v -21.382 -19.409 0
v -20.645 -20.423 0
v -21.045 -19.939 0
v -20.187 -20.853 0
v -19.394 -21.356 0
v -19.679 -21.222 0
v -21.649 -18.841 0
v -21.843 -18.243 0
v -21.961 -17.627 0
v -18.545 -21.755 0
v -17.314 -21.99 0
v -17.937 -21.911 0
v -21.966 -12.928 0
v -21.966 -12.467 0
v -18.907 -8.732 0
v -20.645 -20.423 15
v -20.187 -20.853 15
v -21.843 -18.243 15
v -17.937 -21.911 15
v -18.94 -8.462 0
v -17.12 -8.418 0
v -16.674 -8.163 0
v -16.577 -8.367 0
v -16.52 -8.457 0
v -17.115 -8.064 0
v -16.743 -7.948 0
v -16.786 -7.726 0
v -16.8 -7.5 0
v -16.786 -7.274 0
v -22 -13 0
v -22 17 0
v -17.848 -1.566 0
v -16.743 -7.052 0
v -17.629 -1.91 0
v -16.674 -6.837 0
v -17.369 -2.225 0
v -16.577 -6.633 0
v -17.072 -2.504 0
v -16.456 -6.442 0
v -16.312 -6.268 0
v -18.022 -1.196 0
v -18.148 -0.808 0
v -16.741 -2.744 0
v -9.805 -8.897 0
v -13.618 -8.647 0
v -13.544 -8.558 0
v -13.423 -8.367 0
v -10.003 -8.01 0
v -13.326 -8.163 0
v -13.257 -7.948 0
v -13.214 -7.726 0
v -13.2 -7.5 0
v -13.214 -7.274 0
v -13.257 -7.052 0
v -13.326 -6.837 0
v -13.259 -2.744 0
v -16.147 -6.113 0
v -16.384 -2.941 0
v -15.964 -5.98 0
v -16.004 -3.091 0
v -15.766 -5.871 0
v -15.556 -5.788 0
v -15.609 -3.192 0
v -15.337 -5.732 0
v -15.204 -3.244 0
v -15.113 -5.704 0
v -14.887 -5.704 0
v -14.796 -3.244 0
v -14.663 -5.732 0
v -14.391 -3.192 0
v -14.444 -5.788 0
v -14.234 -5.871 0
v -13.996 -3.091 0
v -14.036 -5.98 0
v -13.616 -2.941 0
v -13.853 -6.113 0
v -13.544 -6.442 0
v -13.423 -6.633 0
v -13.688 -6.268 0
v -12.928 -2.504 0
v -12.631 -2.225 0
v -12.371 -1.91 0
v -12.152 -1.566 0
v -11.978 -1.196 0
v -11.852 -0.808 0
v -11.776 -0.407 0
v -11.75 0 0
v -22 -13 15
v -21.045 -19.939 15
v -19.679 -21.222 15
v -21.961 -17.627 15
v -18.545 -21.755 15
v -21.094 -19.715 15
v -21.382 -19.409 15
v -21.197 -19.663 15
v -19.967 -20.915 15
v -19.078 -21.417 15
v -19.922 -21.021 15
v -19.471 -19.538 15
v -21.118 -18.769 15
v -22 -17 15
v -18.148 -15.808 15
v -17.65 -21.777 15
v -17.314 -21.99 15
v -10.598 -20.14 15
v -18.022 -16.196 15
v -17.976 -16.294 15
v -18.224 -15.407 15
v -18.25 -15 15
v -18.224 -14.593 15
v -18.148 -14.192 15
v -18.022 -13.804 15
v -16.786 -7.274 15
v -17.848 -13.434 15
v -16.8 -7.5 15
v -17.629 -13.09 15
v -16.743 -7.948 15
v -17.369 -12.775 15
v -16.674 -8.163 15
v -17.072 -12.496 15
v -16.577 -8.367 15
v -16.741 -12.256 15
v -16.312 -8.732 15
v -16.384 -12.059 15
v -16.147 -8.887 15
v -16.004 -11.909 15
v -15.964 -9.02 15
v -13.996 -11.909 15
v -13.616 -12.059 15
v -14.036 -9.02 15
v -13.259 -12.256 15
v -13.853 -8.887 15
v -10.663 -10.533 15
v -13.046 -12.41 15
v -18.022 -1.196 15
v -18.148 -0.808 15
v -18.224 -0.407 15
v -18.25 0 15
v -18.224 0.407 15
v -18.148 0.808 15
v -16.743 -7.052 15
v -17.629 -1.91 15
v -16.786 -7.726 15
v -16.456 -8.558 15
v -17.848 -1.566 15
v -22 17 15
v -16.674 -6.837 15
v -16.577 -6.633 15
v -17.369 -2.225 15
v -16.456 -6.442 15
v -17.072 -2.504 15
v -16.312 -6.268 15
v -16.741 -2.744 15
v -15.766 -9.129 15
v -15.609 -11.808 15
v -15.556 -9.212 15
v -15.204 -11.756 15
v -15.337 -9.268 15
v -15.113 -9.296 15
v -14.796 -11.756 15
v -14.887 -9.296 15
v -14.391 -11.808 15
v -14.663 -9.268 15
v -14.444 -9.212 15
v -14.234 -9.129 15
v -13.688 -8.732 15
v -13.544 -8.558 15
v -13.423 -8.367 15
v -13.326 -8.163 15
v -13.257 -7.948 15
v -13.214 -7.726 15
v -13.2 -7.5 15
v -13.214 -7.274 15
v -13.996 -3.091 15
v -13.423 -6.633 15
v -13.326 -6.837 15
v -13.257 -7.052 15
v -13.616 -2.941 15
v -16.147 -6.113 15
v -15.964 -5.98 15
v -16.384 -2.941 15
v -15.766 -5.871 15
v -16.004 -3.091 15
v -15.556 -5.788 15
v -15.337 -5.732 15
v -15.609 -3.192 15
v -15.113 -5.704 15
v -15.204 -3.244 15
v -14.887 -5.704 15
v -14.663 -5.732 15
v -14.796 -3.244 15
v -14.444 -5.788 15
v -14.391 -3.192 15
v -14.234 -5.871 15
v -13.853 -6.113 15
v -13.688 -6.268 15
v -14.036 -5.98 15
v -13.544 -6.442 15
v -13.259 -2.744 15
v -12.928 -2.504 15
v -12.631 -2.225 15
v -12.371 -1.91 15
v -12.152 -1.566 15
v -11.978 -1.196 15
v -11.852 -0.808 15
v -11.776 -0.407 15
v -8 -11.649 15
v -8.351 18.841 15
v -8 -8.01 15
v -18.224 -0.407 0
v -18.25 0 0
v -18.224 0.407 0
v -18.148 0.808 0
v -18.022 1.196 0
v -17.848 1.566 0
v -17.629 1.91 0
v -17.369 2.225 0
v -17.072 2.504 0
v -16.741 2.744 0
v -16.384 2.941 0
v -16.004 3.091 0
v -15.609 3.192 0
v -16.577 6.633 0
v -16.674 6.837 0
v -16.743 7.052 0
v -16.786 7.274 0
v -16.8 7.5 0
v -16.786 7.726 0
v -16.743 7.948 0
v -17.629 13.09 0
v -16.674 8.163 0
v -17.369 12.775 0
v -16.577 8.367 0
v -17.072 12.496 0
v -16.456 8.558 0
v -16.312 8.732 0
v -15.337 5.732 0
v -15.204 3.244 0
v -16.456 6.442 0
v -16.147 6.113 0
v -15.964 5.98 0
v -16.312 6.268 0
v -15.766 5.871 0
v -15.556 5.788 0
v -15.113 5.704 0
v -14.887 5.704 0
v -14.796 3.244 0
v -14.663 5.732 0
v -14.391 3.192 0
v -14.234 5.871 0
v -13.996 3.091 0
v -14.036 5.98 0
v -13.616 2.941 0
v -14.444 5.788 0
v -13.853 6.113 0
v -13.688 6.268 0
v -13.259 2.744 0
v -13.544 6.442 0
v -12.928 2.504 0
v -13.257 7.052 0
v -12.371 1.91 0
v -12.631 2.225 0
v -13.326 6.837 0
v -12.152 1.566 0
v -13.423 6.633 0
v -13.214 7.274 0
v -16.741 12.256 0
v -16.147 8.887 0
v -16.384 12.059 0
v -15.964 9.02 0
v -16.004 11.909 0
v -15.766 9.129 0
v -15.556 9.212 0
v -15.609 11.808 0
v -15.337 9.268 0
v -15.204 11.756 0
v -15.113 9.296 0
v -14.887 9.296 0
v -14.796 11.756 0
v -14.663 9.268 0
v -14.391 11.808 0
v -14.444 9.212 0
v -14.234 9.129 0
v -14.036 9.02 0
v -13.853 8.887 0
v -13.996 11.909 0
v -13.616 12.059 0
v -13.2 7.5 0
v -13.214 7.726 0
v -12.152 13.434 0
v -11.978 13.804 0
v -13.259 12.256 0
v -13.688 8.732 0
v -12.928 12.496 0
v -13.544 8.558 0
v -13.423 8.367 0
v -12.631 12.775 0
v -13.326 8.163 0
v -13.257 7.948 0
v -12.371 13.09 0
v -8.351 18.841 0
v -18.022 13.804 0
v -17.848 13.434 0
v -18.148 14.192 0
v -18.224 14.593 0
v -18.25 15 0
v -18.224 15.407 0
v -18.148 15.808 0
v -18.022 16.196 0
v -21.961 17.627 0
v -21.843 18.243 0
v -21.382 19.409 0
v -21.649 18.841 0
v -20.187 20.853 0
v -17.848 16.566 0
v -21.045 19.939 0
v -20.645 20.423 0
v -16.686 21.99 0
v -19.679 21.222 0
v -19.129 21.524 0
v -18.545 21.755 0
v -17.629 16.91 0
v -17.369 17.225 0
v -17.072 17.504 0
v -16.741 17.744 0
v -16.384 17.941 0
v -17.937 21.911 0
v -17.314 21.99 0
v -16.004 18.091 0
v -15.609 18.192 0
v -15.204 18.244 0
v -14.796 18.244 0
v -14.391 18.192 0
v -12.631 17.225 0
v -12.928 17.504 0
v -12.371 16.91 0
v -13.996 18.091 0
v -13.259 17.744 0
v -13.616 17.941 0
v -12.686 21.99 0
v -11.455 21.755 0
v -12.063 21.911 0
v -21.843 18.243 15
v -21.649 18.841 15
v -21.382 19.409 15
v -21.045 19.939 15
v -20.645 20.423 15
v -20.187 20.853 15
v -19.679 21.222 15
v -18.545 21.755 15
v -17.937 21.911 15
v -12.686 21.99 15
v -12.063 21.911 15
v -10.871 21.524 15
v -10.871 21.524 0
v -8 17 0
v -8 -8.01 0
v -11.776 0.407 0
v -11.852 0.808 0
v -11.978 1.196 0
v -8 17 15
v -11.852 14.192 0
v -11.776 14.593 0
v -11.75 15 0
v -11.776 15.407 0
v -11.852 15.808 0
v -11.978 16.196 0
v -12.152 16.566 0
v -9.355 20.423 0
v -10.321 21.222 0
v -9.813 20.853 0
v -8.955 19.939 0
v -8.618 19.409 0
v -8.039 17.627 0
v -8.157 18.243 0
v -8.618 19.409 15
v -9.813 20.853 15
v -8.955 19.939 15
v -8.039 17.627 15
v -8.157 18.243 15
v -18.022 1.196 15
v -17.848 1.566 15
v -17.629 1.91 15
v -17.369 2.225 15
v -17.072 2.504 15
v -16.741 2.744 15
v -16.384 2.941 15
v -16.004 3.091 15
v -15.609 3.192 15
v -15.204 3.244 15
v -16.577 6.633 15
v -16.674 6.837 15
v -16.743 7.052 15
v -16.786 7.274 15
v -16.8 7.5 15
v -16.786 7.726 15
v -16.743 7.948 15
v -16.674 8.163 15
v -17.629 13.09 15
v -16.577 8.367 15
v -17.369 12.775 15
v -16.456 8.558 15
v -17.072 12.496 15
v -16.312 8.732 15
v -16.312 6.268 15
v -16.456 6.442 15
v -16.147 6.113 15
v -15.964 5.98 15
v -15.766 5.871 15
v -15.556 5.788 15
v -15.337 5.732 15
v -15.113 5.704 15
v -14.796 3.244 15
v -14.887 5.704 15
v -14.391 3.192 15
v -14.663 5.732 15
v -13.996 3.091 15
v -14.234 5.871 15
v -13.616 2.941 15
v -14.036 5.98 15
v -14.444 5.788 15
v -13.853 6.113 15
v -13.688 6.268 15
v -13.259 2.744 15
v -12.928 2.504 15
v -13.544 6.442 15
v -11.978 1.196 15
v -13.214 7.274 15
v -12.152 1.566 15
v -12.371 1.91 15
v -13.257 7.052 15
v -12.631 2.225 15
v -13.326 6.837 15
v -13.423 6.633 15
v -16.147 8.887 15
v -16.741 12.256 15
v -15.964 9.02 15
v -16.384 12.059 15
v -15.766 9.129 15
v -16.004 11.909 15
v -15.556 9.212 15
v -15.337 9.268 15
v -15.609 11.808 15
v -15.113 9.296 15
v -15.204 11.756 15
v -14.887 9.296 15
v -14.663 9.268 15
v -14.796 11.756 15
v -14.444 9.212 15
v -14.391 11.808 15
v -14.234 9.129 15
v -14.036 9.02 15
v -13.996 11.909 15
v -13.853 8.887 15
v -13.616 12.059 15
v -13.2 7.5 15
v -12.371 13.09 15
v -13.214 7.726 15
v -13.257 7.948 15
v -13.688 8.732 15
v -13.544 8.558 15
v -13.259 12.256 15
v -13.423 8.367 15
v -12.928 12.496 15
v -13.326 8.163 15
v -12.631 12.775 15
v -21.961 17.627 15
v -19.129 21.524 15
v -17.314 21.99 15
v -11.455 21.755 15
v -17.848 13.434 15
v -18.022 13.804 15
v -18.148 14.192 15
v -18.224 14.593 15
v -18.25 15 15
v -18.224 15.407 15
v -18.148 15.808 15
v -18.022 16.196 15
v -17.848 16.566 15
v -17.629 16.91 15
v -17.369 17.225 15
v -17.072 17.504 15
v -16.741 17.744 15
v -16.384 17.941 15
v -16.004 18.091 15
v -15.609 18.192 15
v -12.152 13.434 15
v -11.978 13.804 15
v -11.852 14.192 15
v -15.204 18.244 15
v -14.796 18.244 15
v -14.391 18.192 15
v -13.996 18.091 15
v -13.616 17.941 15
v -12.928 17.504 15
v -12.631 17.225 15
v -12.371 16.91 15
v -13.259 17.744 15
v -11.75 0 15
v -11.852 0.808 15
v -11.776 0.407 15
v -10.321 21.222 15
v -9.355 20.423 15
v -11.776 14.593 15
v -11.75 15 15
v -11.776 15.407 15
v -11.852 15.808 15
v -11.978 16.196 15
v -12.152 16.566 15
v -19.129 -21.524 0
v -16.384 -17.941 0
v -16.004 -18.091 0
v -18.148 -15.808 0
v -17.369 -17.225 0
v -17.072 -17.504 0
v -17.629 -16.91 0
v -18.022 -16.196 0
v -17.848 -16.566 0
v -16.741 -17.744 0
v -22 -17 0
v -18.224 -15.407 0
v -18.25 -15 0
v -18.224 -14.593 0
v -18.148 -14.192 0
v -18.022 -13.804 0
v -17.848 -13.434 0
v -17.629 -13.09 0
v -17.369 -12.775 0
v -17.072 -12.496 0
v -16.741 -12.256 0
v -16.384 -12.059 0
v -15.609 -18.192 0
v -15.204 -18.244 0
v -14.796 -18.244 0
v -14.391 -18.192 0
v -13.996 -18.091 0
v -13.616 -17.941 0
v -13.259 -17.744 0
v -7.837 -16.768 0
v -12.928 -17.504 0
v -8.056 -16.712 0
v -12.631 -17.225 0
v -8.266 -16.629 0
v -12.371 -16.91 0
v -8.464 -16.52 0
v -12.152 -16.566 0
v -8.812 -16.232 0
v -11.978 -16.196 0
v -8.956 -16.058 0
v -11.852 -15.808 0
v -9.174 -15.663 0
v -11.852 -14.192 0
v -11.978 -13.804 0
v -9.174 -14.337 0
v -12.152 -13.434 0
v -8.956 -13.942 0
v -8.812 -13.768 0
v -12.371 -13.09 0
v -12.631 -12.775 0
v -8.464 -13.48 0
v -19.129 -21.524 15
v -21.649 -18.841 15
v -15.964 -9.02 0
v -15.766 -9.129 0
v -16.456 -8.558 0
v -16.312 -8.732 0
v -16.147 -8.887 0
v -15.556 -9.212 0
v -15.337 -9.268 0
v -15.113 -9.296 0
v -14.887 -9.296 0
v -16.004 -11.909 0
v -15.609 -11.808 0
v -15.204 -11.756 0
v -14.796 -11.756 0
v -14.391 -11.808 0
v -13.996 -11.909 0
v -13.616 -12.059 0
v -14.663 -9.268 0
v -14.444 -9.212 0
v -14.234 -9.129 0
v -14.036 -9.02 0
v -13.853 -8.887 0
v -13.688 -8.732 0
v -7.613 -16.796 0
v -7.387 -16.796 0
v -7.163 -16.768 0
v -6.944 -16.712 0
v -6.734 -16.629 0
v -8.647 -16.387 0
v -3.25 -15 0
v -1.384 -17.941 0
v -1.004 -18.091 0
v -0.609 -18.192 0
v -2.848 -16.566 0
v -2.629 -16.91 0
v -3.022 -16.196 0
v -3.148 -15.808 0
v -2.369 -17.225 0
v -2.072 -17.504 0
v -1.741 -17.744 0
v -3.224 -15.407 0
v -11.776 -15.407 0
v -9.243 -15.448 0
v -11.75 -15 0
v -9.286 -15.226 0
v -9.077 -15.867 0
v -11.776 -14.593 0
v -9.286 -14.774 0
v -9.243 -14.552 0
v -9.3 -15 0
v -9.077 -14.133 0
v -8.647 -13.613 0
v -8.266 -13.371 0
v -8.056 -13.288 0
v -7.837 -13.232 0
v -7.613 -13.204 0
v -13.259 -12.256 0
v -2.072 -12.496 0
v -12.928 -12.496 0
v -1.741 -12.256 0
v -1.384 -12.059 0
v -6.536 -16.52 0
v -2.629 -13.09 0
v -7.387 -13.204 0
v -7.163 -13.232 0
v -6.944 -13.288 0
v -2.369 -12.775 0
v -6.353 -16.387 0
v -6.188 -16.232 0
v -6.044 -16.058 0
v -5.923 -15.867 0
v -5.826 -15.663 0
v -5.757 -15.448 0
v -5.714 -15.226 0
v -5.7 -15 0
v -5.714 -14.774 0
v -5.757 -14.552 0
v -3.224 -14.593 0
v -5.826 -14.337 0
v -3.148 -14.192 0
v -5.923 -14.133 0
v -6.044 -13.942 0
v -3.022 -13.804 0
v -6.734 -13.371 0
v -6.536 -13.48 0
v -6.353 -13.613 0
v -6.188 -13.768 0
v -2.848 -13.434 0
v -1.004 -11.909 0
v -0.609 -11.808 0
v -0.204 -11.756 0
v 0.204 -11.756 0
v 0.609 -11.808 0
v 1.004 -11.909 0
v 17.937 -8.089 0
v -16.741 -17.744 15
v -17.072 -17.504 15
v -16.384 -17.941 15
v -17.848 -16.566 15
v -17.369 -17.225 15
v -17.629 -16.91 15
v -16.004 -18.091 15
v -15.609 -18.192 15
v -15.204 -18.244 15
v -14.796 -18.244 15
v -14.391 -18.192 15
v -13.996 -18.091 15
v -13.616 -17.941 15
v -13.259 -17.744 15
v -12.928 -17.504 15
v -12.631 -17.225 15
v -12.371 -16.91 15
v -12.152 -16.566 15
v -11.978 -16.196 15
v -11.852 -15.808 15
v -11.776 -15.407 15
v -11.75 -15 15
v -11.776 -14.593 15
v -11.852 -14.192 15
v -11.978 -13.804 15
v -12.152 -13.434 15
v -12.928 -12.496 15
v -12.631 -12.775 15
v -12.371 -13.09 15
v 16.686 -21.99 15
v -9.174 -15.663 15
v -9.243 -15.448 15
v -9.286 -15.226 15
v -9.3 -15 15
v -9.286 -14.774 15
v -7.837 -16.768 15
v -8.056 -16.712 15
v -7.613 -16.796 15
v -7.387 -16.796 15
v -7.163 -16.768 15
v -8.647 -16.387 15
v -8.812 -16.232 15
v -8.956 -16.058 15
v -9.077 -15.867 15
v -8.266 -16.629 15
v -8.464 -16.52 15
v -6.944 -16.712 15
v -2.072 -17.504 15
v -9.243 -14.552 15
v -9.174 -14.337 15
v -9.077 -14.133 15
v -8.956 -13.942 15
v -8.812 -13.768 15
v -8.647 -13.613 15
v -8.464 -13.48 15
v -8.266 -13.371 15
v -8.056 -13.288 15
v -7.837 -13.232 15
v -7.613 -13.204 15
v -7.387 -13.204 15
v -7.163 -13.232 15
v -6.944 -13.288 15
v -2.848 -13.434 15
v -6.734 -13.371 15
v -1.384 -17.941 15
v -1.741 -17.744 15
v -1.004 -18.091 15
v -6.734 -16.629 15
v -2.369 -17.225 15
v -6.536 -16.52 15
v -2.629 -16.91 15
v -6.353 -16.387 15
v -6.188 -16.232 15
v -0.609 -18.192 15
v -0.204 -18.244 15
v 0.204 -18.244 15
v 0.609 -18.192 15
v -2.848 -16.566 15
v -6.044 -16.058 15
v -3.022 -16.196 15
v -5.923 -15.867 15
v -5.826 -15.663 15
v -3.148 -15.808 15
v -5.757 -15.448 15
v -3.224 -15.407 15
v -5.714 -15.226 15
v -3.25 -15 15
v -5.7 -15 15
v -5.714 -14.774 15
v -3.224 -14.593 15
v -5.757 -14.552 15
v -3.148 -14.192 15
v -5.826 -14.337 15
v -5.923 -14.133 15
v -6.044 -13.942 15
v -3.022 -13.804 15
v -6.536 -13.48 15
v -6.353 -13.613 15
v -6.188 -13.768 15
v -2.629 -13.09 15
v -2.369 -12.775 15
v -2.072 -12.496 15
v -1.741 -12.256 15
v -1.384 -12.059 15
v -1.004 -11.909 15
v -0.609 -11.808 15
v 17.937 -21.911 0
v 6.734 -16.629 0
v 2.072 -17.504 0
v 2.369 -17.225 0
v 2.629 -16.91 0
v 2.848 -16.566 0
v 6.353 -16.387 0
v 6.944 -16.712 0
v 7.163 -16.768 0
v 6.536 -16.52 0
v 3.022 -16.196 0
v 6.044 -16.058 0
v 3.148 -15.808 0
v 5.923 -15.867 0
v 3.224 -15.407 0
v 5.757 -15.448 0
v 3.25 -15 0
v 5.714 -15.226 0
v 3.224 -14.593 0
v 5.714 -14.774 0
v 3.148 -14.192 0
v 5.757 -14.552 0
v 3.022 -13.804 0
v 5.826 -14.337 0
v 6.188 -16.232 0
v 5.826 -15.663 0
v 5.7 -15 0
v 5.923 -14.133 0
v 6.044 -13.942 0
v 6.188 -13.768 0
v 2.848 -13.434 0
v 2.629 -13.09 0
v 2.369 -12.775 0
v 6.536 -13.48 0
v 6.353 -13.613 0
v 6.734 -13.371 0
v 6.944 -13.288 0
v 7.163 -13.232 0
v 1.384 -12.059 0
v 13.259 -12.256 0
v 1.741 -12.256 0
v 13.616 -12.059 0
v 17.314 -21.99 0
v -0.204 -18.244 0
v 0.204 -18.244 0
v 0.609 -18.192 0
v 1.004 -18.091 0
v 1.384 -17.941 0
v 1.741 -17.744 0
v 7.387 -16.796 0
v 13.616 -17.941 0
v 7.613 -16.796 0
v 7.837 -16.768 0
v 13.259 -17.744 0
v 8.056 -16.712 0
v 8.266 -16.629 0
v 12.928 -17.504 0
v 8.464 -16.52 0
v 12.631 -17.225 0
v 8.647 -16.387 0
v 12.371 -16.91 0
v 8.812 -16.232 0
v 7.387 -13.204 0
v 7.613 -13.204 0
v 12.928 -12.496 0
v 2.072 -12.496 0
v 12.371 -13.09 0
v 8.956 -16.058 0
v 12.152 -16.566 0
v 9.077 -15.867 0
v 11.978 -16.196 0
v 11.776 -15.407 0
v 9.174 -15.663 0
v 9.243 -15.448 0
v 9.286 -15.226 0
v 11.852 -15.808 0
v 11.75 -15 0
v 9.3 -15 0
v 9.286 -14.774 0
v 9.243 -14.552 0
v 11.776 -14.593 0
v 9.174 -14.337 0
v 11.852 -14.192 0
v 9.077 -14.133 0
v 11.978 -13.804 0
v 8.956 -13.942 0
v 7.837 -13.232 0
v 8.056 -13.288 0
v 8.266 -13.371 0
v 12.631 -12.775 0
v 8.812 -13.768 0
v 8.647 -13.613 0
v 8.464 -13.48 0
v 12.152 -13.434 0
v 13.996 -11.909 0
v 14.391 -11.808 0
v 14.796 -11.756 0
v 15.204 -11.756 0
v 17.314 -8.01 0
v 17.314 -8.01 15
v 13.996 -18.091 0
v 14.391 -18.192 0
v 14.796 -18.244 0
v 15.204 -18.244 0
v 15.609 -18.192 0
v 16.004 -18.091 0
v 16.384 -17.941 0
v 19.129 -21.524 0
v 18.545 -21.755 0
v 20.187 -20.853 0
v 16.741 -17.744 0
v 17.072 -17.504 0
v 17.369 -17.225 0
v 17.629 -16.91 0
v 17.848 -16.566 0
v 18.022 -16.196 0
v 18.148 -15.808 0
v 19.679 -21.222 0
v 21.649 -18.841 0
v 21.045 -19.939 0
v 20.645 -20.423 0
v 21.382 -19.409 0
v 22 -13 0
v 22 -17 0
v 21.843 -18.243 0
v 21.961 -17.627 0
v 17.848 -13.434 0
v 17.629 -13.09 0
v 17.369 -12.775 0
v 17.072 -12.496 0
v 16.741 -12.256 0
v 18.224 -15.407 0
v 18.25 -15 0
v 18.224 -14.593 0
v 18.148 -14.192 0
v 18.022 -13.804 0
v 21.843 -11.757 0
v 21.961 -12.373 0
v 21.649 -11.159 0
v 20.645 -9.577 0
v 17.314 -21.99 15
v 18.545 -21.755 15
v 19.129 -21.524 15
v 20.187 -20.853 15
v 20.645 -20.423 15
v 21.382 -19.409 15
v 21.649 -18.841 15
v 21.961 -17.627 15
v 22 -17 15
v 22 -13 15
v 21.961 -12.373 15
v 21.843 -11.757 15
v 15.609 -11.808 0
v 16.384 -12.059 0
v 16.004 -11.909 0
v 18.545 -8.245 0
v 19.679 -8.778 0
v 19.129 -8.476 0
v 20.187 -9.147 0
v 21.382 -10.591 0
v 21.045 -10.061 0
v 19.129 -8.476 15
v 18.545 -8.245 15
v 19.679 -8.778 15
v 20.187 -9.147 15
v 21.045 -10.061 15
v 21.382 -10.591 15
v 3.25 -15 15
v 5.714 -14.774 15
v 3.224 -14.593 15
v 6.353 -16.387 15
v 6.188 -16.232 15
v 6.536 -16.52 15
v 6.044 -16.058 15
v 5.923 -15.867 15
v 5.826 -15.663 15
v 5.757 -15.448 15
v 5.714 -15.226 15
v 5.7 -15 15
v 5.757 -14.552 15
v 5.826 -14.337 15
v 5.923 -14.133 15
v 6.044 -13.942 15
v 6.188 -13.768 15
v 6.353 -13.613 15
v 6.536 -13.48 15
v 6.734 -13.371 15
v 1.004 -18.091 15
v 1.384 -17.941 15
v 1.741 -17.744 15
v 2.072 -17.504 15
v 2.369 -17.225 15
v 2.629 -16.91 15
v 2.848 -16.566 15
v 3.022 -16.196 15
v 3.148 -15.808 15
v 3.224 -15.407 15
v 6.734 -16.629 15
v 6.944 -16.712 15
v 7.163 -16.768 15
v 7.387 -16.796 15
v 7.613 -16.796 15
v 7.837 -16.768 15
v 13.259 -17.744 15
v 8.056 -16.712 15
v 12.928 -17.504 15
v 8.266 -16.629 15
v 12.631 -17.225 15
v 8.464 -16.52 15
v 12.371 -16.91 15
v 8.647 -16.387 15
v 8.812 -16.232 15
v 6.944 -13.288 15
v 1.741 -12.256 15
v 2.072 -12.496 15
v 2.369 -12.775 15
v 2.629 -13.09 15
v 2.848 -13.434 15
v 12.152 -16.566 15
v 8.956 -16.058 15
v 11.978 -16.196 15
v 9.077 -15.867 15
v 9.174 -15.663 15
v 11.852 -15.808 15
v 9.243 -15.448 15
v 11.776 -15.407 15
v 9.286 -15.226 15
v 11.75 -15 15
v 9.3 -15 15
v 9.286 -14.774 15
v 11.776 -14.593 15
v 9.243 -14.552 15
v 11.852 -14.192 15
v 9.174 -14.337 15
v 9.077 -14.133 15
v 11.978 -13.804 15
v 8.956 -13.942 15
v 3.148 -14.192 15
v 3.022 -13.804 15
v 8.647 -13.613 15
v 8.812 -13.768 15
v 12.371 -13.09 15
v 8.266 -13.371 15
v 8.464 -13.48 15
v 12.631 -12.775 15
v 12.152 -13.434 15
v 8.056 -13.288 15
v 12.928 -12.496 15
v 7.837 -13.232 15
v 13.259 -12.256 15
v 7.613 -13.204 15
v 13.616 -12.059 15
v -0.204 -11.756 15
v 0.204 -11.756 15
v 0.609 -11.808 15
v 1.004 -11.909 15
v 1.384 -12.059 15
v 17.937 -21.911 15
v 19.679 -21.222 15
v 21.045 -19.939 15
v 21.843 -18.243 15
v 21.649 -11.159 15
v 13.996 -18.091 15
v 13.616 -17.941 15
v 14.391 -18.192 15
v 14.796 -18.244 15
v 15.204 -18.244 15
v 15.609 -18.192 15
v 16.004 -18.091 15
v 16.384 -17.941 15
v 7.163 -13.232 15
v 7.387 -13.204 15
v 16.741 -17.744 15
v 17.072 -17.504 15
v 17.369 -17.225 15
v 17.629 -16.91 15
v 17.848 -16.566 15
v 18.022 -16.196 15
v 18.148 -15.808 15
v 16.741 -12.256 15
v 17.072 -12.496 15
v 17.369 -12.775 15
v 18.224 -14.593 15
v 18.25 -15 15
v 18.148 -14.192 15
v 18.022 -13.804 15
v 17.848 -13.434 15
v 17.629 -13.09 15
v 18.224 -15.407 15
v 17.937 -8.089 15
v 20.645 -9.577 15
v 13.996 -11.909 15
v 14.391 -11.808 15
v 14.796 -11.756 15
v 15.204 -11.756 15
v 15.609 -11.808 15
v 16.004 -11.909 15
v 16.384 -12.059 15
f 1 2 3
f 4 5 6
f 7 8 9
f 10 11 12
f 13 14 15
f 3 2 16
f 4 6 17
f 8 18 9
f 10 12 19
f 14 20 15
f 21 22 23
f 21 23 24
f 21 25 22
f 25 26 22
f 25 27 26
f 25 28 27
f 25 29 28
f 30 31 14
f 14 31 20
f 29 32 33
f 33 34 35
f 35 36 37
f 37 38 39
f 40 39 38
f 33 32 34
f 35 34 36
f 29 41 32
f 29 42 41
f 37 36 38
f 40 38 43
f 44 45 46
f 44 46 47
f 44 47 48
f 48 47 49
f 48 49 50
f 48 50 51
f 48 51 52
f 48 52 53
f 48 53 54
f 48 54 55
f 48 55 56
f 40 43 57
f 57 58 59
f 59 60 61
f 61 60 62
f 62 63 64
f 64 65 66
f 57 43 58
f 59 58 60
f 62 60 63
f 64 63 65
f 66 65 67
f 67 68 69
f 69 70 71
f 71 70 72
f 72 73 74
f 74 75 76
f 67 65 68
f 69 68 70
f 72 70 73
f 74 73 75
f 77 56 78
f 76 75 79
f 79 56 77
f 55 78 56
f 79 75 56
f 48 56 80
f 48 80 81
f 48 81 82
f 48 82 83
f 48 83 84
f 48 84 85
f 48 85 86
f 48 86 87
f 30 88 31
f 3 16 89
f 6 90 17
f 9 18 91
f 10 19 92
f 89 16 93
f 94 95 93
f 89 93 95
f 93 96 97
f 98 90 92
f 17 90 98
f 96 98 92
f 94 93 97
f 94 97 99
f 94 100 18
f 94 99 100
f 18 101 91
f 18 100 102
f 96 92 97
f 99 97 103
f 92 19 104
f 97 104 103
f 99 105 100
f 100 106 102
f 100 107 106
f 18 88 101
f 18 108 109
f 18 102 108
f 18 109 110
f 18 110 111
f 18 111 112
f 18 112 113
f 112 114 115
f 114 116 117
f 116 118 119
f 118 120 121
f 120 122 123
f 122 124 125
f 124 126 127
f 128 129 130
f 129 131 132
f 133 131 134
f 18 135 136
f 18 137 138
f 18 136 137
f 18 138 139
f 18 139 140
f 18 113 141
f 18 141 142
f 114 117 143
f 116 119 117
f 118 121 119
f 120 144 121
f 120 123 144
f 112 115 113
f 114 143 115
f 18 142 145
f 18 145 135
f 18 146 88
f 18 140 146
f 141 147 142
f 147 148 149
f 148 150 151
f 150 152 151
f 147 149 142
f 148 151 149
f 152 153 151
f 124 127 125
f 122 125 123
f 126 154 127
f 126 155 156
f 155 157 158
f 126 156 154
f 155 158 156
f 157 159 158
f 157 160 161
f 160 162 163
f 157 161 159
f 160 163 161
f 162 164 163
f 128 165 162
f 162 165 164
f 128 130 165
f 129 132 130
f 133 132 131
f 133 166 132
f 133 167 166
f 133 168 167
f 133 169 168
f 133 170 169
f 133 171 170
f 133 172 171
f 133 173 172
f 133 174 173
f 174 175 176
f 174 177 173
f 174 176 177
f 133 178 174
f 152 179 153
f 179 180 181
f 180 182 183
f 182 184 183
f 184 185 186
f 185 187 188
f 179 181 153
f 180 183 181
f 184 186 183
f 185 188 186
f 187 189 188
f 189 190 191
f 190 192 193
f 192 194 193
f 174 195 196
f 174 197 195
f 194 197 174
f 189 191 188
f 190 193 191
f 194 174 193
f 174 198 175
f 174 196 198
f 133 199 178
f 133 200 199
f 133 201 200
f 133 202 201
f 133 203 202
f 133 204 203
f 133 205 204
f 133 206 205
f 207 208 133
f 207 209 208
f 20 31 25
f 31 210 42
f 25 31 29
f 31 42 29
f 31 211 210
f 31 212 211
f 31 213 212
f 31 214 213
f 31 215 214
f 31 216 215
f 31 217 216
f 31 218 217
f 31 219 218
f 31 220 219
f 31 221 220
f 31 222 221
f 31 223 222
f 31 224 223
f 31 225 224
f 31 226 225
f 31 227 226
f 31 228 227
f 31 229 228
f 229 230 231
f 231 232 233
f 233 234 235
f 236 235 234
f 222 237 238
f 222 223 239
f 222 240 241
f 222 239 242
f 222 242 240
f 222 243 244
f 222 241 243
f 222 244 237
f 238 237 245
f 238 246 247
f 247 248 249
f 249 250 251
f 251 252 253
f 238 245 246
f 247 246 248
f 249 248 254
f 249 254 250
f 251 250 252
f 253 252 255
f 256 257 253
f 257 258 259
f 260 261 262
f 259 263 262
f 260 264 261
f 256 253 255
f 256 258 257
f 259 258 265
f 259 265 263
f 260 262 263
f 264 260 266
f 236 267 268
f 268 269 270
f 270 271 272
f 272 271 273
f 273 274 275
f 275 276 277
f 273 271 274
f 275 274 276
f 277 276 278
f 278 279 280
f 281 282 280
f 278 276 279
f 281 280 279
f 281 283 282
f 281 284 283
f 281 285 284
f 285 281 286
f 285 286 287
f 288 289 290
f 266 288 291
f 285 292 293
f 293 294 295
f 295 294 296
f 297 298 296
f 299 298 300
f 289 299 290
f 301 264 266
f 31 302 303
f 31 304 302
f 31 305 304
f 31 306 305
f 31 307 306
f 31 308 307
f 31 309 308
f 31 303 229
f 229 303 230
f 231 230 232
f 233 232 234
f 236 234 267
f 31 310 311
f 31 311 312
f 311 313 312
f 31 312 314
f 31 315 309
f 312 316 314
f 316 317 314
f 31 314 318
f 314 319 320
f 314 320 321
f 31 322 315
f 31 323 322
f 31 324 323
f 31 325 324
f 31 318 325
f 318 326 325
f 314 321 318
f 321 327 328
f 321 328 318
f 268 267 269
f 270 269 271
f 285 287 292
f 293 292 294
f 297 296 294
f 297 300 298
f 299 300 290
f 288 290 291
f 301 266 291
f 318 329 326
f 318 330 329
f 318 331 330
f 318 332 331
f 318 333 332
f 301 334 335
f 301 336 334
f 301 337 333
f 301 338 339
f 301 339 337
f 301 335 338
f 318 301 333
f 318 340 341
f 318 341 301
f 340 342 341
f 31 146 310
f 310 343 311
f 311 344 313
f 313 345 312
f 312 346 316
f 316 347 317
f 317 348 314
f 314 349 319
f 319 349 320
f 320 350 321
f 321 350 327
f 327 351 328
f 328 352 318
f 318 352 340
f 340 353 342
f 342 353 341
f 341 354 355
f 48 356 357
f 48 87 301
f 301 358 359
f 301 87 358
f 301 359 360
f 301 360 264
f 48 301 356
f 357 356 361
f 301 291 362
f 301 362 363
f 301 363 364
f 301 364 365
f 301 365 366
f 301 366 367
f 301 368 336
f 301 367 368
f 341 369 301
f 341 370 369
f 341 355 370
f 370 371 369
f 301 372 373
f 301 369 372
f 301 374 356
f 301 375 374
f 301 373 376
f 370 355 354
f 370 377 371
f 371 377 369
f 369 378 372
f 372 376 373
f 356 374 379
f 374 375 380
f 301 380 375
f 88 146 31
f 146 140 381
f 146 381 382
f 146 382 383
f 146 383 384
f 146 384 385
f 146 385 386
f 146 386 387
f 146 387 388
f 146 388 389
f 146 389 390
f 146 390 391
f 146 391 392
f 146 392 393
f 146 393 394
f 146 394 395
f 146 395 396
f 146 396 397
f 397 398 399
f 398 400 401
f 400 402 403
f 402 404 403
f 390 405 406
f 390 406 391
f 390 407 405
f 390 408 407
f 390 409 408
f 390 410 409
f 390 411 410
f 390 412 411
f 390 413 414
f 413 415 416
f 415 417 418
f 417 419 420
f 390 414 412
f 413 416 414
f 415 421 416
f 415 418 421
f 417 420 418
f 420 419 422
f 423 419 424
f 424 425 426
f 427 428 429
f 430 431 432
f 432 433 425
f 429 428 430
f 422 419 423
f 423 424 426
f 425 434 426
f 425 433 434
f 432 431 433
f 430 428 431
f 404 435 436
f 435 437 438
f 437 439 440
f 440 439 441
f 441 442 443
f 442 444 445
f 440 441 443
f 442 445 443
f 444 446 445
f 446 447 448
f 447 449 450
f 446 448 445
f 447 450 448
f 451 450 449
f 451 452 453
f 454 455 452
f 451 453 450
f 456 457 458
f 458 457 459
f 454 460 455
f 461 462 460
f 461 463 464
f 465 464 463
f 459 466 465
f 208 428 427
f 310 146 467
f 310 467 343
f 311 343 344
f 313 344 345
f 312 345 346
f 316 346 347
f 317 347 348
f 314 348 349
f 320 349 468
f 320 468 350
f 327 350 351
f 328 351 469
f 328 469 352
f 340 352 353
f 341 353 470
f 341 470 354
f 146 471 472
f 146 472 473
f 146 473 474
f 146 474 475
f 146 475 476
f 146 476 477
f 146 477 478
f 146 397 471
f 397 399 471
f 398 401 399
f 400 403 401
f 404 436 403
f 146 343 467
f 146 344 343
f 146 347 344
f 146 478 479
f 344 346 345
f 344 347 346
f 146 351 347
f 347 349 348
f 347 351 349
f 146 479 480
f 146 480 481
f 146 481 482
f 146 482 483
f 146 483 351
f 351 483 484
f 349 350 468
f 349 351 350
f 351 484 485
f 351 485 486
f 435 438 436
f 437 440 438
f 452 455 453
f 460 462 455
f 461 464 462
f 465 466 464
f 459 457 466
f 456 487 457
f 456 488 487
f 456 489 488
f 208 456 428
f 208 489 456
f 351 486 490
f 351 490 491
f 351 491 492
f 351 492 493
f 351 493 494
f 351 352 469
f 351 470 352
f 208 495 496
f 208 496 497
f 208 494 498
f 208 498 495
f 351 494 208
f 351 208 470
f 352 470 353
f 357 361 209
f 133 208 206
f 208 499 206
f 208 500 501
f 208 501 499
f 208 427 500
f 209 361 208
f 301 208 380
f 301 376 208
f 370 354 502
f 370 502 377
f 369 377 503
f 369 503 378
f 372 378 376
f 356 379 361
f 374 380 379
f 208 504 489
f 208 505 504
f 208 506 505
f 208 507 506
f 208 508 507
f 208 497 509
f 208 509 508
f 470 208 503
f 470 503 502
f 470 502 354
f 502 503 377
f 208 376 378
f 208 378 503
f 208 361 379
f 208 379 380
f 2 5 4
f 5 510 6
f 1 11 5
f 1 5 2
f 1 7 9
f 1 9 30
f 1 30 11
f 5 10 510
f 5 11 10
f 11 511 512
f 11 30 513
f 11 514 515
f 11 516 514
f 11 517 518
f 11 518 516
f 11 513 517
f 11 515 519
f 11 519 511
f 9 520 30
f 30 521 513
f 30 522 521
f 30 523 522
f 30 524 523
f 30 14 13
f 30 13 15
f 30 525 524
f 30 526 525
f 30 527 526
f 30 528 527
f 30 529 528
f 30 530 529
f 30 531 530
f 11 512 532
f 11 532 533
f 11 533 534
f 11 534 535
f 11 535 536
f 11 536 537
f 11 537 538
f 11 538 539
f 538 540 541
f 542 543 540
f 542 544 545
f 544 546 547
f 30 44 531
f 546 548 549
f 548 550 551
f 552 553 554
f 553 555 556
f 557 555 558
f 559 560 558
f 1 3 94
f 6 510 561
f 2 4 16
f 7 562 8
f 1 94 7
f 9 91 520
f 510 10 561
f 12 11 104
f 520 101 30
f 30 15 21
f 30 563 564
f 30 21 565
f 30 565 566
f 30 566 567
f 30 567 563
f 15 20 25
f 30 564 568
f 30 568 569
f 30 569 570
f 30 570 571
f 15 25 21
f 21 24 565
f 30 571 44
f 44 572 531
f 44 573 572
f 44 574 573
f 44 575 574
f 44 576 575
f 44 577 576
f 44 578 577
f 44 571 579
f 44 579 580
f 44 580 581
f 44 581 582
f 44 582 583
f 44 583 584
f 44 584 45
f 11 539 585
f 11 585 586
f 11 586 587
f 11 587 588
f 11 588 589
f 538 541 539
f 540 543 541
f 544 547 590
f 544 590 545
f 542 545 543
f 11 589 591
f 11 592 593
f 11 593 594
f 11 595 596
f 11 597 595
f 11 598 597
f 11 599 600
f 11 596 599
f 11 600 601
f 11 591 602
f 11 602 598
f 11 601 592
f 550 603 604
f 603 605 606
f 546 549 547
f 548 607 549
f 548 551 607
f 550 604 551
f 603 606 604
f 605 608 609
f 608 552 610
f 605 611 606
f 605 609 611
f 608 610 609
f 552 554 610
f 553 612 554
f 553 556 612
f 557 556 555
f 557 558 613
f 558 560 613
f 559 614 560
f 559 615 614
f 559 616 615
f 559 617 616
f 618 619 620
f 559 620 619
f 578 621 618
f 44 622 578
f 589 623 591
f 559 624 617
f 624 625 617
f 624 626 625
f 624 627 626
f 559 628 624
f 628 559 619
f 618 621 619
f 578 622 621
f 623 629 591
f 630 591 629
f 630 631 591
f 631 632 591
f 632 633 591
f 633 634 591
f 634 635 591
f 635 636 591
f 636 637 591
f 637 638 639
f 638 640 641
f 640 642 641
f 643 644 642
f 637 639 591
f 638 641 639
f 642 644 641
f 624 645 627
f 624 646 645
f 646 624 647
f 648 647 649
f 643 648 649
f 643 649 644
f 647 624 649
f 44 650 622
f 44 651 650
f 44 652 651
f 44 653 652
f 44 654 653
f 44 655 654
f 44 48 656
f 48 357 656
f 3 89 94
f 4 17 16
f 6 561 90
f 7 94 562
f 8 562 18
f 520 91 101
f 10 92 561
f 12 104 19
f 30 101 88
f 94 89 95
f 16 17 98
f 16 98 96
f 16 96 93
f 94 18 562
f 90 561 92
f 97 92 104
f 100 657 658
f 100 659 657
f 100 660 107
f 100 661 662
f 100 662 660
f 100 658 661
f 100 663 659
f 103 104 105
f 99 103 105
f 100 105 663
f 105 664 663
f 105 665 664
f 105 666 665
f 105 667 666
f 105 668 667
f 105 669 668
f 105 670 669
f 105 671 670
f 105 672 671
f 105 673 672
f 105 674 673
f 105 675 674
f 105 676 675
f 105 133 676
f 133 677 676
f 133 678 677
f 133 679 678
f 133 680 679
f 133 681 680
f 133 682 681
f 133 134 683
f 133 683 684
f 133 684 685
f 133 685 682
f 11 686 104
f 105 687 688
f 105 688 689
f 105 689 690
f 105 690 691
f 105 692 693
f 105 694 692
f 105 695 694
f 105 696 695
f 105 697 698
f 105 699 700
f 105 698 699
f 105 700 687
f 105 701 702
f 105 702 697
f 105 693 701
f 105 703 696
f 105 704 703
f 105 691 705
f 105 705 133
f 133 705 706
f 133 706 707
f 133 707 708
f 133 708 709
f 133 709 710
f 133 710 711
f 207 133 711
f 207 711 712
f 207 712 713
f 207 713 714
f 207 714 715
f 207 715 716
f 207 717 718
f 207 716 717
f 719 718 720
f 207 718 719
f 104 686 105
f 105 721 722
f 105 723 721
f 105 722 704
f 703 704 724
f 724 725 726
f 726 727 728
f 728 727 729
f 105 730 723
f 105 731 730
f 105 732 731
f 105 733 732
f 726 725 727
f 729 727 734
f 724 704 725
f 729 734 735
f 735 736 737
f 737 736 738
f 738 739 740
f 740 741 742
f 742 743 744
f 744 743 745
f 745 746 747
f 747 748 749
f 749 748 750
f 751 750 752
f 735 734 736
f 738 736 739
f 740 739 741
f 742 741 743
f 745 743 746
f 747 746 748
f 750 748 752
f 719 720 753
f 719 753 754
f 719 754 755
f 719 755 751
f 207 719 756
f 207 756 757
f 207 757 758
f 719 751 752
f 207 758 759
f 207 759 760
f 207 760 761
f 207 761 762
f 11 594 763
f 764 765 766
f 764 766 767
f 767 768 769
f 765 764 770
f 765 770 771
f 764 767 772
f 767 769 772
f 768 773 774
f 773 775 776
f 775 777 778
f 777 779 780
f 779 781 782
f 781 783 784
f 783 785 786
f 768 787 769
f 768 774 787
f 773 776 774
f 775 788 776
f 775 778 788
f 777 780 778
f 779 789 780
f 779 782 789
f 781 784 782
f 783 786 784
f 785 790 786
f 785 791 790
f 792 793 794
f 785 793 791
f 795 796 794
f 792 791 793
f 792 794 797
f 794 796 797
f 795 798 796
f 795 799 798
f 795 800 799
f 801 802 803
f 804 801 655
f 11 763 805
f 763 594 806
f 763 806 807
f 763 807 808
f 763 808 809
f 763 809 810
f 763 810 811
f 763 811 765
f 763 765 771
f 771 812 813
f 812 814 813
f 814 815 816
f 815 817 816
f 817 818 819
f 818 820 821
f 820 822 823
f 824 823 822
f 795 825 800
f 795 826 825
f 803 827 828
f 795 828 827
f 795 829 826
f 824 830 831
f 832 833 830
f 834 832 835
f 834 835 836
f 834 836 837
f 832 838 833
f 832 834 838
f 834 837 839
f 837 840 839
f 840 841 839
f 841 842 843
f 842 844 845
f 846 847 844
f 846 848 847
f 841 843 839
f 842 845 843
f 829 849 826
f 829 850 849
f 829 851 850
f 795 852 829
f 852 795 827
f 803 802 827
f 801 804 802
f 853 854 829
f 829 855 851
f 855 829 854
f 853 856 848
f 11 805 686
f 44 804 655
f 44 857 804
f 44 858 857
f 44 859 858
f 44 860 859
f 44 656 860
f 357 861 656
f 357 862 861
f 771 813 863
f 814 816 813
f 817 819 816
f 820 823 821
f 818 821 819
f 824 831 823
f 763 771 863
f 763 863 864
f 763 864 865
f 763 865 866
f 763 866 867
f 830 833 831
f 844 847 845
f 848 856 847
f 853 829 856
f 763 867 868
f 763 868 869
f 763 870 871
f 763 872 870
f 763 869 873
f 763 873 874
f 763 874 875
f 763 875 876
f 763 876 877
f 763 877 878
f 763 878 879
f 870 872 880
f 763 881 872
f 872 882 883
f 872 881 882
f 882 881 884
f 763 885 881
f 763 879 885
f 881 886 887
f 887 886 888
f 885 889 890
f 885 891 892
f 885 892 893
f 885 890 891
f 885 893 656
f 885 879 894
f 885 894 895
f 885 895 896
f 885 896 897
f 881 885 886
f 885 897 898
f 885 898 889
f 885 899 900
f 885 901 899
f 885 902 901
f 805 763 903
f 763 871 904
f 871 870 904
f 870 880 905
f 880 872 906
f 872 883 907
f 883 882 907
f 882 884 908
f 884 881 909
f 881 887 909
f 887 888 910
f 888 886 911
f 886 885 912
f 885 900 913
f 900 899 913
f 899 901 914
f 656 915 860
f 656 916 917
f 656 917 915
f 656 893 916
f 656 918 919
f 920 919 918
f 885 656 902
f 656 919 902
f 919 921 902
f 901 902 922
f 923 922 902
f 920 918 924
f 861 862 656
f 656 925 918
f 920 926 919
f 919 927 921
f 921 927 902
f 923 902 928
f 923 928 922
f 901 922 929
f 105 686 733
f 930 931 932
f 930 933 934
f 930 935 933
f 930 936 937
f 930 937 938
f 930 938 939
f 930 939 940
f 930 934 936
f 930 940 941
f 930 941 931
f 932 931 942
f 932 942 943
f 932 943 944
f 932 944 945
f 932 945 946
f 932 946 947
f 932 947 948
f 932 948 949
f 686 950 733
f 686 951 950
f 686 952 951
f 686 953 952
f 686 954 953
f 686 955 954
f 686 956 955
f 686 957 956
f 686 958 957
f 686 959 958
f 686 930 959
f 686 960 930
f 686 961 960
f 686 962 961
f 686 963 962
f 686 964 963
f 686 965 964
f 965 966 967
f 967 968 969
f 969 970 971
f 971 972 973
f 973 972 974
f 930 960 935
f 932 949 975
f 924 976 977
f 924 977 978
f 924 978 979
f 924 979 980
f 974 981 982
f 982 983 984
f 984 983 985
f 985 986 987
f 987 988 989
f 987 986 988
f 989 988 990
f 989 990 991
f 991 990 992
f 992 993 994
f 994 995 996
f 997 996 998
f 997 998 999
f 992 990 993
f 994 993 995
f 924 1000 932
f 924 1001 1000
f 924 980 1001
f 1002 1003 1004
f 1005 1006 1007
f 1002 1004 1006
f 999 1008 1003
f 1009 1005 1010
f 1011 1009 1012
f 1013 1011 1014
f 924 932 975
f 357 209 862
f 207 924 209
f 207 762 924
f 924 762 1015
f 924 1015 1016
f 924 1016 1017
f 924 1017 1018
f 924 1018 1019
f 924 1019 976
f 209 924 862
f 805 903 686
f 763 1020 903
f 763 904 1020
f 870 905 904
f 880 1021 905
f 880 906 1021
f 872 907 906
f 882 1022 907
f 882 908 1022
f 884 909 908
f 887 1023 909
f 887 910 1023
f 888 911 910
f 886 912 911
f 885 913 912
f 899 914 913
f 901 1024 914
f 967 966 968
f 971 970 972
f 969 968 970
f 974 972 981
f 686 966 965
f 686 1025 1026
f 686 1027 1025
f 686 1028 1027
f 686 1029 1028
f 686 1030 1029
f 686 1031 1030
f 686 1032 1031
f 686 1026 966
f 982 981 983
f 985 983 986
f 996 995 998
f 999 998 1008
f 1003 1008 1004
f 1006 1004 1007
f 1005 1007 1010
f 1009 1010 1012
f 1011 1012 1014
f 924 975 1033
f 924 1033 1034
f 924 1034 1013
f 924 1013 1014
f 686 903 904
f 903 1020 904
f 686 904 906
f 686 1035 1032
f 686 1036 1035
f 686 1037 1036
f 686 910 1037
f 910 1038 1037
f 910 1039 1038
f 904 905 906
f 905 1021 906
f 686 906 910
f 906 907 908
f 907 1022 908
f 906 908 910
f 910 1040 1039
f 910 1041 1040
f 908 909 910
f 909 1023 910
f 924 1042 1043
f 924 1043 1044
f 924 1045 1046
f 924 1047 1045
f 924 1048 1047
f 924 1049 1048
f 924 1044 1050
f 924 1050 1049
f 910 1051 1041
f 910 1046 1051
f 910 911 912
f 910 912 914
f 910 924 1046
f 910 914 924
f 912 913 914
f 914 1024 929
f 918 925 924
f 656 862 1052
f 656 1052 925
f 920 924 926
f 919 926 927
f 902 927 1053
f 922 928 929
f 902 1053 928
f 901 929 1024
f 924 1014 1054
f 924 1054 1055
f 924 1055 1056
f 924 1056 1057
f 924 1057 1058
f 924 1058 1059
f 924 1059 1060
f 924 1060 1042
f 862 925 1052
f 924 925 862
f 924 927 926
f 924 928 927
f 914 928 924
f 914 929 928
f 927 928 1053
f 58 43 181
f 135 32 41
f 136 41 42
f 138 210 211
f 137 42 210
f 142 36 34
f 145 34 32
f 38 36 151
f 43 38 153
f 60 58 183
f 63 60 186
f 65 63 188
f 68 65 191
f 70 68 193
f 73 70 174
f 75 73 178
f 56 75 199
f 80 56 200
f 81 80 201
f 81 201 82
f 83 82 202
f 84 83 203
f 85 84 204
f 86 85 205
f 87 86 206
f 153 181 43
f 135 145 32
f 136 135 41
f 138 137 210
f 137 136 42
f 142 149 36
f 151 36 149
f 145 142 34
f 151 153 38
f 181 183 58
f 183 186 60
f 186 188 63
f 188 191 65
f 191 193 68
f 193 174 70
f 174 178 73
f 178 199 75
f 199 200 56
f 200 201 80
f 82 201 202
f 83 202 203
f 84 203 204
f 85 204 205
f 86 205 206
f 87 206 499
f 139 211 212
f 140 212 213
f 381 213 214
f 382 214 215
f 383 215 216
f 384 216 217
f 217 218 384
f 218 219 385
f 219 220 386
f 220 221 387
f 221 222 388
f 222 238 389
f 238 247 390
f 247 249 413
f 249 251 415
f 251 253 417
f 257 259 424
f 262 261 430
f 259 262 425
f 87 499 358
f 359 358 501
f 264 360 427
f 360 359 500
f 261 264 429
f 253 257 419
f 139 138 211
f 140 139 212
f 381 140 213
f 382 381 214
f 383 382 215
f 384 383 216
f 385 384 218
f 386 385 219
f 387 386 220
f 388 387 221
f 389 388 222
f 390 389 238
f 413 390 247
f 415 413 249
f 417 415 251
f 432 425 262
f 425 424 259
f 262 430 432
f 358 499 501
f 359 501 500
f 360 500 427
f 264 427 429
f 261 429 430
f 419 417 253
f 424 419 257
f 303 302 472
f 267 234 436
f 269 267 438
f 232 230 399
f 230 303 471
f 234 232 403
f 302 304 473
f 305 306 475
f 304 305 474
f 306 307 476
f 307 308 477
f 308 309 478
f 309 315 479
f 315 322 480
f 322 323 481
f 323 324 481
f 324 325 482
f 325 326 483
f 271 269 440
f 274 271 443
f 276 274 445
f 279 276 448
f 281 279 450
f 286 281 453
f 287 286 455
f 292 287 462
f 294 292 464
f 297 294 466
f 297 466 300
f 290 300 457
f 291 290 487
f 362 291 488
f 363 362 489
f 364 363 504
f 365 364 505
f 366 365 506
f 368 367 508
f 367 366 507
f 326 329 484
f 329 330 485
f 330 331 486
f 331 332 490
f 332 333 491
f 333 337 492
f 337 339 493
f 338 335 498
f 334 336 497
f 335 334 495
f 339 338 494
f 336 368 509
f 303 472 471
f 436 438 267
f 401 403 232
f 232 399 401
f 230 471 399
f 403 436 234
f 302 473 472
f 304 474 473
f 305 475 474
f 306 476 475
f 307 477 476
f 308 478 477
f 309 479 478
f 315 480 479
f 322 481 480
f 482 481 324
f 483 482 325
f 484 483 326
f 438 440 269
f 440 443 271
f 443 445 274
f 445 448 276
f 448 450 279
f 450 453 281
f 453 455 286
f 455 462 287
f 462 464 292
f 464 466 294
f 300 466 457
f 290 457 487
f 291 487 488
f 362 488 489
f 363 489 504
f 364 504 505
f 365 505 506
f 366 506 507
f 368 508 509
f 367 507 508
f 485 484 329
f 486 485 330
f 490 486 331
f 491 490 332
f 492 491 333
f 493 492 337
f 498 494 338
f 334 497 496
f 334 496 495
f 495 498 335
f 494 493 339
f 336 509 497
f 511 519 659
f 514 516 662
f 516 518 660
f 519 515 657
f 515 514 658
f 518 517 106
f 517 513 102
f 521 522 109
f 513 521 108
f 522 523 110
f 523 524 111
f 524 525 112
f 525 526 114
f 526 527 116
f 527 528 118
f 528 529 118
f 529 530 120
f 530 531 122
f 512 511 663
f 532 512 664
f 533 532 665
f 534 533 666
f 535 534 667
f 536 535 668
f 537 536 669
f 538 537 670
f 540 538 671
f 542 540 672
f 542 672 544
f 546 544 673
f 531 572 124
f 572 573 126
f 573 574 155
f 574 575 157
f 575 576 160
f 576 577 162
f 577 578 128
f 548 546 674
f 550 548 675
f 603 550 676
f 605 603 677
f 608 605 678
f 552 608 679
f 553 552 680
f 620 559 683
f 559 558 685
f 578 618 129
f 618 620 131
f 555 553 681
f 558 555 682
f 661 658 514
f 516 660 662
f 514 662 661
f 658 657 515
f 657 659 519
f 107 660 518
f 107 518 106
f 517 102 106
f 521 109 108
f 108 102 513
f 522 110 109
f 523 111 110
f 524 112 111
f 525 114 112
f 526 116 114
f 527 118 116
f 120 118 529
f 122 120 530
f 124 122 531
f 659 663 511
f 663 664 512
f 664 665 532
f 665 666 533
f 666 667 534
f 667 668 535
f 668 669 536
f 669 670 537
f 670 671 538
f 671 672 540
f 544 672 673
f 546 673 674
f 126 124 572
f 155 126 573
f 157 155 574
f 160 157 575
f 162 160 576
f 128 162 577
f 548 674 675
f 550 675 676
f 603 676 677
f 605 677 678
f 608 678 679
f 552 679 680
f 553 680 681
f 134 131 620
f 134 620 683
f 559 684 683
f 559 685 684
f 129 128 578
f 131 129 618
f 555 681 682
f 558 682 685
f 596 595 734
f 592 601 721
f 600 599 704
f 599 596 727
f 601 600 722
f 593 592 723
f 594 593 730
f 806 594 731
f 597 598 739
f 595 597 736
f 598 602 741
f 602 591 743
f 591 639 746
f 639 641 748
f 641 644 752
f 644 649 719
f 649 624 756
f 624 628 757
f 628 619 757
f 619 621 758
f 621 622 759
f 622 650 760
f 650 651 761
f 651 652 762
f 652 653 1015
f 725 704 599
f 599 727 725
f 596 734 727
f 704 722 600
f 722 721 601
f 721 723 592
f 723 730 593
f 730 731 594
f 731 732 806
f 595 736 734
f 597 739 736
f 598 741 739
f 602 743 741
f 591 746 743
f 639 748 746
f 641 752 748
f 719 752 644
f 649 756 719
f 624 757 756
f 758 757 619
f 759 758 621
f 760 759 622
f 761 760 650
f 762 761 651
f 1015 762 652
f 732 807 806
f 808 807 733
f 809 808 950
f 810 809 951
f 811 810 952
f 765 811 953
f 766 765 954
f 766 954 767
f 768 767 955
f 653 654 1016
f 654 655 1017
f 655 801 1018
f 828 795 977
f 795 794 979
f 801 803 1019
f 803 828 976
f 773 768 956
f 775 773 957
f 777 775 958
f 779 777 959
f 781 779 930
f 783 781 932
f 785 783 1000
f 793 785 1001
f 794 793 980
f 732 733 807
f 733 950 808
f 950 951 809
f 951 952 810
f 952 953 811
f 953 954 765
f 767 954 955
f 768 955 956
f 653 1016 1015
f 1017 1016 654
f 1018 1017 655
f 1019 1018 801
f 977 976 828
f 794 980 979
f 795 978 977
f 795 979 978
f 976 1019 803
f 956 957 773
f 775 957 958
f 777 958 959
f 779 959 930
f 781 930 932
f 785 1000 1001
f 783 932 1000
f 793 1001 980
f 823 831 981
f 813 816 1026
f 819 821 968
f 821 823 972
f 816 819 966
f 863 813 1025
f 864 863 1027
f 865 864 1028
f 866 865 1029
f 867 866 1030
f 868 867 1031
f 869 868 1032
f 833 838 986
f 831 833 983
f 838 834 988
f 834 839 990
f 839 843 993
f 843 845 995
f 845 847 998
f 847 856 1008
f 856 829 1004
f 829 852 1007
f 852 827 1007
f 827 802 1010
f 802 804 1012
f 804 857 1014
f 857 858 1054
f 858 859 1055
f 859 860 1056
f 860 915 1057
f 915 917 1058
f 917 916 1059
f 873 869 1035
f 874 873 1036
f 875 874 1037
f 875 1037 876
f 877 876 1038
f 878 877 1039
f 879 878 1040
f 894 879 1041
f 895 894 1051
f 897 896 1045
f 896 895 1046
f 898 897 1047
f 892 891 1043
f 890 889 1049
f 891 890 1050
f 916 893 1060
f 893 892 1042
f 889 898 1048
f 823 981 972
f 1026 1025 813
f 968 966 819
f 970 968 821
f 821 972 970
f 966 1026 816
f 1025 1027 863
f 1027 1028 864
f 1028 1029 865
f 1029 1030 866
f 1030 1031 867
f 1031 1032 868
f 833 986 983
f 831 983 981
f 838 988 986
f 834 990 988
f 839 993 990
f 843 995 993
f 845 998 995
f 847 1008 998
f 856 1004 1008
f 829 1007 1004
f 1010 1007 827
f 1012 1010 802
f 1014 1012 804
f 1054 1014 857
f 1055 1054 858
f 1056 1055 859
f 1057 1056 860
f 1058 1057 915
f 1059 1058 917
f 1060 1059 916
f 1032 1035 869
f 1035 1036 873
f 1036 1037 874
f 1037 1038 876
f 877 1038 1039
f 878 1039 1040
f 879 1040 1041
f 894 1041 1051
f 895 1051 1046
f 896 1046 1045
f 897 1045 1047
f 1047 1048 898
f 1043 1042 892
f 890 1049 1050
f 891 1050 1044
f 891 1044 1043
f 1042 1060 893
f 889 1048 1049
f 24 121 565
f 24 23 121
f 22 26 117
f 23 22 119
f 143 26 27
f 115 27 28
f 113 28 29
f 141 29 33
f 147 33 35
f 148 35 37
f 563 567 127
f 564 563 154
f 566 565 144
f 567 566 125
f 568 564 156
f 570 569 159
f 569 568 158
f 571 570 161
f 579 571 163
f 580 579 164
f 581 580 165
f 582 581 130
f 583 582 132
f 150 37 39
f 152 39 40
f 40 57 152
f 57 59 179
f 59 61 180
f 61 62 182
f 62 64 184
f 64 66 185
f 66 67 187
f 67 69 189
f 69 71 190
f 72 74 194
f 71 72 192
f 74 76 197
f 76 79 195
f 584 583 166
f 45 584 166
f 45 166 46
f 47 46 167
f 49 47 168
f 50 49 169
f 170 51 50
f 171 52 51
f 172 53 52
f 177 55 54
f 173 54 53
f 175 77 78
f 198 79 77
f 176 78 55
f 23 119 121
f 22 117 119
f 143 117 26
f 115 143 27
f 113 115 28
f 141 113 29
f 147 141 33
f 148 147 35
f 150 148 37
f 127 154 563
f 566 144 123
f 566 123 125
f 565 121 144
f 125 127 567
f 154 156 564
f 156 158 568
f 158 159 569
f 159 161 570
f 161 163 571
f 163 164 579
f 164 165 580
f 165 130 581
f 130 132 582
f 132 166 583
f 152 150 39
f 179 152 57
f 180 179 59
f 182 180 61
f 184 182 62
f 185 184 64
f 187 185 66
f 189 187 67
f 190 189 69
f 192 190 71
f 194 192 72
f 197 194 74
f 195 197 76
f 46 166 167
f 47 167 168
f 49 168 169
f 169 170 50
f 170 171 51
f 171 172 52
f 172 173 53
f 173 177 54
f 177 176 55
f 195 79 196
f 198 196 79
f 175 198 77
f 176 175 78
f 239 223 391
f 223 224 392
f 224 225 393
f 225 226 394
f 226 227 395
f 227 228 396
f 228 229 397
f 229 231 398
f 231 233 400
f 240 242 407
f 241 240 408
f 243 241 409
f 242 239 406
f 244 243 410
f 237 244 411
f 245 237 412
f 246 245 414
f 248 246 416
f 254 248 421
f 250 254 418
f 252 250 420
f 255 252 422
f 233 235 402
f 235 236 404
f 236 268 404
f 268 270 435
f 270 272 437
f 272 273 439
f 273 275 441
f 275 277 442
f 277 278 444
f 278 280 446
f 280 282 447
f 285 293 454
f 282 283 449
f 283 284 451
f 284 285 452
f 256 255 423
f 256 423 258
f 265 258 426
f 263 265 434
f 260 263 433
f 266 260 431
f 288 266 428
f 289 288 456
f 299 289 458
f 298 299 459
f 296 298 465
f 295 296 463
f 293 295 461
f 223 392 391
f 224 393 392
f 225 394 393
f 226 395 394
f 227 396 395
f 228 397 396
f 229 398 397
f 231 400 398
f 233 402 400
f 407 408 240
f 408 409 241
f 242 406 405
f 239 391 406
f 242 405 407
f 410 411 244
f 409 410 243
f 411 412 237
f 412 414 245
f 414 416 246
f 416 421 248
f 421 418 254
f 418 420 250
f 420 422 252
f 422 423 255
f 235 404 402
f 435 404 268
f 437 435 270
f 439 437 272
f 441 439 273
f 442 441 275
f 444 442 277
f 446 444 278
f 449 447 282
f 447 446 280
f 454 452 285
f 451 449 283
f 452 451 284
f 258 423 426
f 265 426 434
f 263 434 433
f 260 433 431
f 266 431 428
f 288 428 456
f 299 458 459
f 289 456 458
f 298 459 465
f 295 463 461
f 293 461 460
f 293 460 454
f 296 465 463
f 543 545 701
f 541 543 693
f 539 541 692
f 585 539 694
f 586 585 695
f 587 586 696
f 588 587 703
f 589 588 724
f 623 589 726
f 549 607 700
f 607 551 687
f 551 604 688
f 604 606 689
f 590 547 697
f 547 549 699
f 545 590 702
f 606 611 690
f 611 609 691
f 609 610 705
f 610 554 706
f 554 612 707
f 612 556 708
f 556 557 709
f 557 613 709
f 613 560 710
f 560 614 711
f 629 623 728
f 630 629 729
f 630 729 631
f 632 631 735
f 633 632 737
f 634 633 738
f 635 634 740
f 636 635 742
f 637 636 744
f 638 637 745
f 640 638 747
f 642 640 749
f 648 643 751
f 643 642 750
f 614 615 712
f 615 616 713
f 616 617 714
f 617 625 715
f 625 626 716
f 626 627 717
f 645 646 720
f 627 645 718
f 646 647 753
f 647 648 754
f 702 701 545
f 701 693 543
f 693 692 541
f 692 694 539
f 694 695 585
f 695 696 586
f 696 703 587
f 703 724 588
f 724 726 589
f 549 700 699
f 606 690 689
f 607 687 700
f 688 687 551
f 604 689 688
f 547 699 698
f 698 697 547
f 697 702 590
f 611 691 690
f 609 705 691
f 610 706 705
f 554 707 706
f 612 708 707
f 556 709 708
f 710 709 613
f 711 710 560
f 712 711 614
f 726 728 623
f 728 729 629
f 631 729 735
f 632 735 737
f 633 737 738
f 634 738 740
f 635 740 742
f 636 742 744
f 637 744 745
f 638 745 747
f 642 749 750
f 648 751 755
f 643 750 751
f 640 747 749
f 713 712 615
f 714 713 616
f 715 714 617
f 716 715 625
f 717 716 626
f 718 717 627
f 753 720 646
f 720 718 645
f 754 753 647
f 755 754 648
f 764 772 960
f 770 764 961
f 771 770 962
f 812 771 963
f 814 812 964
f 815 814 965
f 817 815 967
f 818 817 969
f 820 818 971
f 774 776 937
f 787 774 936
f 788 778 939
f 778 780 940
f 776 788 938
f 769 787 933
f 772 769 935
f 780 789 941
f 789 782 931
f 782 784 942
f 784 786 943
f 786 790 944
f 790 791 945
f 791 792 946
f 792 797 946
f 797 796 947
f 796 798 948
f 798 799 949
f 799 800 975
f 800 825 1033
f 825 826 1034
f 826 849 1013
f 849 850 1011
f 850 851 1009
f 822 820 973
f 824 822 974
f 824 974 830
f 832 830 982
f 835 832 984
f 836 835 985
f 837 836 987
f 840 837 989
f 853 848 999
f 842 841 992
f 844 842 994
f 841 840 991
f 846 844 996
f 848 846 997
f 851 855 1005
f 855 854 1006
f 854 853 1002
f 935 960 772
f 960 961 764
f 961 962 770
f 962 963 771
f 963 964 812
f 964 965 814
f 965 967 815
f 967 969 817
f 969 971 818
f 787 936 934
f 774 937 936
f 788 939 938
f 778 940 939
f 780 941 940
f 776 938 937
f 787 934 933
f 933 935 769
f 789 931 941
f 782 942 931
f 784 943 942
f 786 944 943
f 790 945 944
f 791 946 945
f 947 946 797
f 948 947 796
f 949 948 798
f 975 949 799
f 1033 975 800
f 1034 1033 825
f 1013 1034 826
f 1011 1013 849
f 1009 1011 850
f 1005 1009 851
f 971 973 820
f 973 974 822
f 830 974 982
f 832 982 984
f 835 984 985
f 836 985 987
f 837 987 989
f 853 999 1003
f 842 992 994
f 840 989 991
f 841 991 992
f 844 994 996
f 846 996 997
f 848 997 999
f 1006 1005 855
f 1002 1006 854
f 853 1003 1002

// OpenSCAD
$fn = 50;

difference() {
	union() {
		translate(v = [-15.0, 0, 0]) {
			hull() {
				translate(v = [-2.0, 17.0, 0]) {
					cylinder(h = 15, r = 5);
				}
				translate(v = [2.0, 17.0, 0]) {
					cylinder(h = 15, r = 5);
				}
				translate(v = [-2.0, -17.0, 0]) {
					cylinder(h = 15, r = 5);
				}
				translate(v = [2.0, -17.0, 0]) {
					cylinder(h = 15, r = 5);
				}
			}
		}
		translate(v = [0, -15.0, 0]) {
			hull() {
				translate(v = [-17.0, 2.0, 0]) {
					cylinder(h = 15, r = 5);
				}
				translate(v = [17.0, 2.0, 0]) {
					cylinder(h = 15, r = 5);
				}
				translate(v = [-17.0, -2.0, 0]) {
					cylinder(h = 15, r = 5);
				}
				translate(v = [17.0, -2.0, 0]) {
					cylinder(h = 15, r = 5);
				}
			}
		}
	}
	union() {
		#translate(v = [-15.0, -15.0, 0]) {
			cylinder(h = 15, r = 3.25);
		}
		#translate(v = [-15.0, 0.0, 0]) {
			cylinder(h = 15, r = 3.25);
		}
		#translate(v = [-15.0, 15.0, 0]) {
			cylinder(h = 15, r = 3.25);
		}
		#translate(v = [-15.0, -15.0, 0]) {
			cylinder(h = 15, r = 3.25);
		}
		#translate(v = [0.0, -15.0, 0]) {
			cylinder(h = 15, r = 3.25);
		}
		#translate(v = [15.0, -15.0, 0]) {
			cylinder(h = 15, r = 3.25);
		}
		#translate(v = [-15.0, -15.0, 0]) {
			cylinder(h = 15, r = 1.8);
		}
		#translate(v = [-15.0, -7.5, 0]) {
			cylinder(h = 15, r = 1.8);
		}
		#translate(v = [-15.0, 0.0, 0]) {
			cylinder(h = 15, r = 1.8);
		}
		#translate(v = [-15.0, 7.5, 0]) {
			cylinder(h = 15, r = 1.8);
		}
		#translate(v = [-15.0, 15.0, 0]) {
			cylinder(h = 15, r = 1.8);
		}
		#translate(v = [-15.0, -15.0, 0]) {
			cylinder(h = 15, r = 1.8);
		}
		#translate(v = [-7.5, -15.0, 0]) {
			cylinder(h = 15, r = 1.8);
		}
		#translate(v = [0.0, -15.0, 0]) {
			cylinder(h = 15, r = 1.8);
		}
		#translate(v = [7.5, -15.0, 0]) {
			cylinder(h = 15, r = 1.8);
		}
		#translate(v = [15.0, -15.0, 0]) {
			cylinder(h = 15, r = 1.8);
		}
	}
}
